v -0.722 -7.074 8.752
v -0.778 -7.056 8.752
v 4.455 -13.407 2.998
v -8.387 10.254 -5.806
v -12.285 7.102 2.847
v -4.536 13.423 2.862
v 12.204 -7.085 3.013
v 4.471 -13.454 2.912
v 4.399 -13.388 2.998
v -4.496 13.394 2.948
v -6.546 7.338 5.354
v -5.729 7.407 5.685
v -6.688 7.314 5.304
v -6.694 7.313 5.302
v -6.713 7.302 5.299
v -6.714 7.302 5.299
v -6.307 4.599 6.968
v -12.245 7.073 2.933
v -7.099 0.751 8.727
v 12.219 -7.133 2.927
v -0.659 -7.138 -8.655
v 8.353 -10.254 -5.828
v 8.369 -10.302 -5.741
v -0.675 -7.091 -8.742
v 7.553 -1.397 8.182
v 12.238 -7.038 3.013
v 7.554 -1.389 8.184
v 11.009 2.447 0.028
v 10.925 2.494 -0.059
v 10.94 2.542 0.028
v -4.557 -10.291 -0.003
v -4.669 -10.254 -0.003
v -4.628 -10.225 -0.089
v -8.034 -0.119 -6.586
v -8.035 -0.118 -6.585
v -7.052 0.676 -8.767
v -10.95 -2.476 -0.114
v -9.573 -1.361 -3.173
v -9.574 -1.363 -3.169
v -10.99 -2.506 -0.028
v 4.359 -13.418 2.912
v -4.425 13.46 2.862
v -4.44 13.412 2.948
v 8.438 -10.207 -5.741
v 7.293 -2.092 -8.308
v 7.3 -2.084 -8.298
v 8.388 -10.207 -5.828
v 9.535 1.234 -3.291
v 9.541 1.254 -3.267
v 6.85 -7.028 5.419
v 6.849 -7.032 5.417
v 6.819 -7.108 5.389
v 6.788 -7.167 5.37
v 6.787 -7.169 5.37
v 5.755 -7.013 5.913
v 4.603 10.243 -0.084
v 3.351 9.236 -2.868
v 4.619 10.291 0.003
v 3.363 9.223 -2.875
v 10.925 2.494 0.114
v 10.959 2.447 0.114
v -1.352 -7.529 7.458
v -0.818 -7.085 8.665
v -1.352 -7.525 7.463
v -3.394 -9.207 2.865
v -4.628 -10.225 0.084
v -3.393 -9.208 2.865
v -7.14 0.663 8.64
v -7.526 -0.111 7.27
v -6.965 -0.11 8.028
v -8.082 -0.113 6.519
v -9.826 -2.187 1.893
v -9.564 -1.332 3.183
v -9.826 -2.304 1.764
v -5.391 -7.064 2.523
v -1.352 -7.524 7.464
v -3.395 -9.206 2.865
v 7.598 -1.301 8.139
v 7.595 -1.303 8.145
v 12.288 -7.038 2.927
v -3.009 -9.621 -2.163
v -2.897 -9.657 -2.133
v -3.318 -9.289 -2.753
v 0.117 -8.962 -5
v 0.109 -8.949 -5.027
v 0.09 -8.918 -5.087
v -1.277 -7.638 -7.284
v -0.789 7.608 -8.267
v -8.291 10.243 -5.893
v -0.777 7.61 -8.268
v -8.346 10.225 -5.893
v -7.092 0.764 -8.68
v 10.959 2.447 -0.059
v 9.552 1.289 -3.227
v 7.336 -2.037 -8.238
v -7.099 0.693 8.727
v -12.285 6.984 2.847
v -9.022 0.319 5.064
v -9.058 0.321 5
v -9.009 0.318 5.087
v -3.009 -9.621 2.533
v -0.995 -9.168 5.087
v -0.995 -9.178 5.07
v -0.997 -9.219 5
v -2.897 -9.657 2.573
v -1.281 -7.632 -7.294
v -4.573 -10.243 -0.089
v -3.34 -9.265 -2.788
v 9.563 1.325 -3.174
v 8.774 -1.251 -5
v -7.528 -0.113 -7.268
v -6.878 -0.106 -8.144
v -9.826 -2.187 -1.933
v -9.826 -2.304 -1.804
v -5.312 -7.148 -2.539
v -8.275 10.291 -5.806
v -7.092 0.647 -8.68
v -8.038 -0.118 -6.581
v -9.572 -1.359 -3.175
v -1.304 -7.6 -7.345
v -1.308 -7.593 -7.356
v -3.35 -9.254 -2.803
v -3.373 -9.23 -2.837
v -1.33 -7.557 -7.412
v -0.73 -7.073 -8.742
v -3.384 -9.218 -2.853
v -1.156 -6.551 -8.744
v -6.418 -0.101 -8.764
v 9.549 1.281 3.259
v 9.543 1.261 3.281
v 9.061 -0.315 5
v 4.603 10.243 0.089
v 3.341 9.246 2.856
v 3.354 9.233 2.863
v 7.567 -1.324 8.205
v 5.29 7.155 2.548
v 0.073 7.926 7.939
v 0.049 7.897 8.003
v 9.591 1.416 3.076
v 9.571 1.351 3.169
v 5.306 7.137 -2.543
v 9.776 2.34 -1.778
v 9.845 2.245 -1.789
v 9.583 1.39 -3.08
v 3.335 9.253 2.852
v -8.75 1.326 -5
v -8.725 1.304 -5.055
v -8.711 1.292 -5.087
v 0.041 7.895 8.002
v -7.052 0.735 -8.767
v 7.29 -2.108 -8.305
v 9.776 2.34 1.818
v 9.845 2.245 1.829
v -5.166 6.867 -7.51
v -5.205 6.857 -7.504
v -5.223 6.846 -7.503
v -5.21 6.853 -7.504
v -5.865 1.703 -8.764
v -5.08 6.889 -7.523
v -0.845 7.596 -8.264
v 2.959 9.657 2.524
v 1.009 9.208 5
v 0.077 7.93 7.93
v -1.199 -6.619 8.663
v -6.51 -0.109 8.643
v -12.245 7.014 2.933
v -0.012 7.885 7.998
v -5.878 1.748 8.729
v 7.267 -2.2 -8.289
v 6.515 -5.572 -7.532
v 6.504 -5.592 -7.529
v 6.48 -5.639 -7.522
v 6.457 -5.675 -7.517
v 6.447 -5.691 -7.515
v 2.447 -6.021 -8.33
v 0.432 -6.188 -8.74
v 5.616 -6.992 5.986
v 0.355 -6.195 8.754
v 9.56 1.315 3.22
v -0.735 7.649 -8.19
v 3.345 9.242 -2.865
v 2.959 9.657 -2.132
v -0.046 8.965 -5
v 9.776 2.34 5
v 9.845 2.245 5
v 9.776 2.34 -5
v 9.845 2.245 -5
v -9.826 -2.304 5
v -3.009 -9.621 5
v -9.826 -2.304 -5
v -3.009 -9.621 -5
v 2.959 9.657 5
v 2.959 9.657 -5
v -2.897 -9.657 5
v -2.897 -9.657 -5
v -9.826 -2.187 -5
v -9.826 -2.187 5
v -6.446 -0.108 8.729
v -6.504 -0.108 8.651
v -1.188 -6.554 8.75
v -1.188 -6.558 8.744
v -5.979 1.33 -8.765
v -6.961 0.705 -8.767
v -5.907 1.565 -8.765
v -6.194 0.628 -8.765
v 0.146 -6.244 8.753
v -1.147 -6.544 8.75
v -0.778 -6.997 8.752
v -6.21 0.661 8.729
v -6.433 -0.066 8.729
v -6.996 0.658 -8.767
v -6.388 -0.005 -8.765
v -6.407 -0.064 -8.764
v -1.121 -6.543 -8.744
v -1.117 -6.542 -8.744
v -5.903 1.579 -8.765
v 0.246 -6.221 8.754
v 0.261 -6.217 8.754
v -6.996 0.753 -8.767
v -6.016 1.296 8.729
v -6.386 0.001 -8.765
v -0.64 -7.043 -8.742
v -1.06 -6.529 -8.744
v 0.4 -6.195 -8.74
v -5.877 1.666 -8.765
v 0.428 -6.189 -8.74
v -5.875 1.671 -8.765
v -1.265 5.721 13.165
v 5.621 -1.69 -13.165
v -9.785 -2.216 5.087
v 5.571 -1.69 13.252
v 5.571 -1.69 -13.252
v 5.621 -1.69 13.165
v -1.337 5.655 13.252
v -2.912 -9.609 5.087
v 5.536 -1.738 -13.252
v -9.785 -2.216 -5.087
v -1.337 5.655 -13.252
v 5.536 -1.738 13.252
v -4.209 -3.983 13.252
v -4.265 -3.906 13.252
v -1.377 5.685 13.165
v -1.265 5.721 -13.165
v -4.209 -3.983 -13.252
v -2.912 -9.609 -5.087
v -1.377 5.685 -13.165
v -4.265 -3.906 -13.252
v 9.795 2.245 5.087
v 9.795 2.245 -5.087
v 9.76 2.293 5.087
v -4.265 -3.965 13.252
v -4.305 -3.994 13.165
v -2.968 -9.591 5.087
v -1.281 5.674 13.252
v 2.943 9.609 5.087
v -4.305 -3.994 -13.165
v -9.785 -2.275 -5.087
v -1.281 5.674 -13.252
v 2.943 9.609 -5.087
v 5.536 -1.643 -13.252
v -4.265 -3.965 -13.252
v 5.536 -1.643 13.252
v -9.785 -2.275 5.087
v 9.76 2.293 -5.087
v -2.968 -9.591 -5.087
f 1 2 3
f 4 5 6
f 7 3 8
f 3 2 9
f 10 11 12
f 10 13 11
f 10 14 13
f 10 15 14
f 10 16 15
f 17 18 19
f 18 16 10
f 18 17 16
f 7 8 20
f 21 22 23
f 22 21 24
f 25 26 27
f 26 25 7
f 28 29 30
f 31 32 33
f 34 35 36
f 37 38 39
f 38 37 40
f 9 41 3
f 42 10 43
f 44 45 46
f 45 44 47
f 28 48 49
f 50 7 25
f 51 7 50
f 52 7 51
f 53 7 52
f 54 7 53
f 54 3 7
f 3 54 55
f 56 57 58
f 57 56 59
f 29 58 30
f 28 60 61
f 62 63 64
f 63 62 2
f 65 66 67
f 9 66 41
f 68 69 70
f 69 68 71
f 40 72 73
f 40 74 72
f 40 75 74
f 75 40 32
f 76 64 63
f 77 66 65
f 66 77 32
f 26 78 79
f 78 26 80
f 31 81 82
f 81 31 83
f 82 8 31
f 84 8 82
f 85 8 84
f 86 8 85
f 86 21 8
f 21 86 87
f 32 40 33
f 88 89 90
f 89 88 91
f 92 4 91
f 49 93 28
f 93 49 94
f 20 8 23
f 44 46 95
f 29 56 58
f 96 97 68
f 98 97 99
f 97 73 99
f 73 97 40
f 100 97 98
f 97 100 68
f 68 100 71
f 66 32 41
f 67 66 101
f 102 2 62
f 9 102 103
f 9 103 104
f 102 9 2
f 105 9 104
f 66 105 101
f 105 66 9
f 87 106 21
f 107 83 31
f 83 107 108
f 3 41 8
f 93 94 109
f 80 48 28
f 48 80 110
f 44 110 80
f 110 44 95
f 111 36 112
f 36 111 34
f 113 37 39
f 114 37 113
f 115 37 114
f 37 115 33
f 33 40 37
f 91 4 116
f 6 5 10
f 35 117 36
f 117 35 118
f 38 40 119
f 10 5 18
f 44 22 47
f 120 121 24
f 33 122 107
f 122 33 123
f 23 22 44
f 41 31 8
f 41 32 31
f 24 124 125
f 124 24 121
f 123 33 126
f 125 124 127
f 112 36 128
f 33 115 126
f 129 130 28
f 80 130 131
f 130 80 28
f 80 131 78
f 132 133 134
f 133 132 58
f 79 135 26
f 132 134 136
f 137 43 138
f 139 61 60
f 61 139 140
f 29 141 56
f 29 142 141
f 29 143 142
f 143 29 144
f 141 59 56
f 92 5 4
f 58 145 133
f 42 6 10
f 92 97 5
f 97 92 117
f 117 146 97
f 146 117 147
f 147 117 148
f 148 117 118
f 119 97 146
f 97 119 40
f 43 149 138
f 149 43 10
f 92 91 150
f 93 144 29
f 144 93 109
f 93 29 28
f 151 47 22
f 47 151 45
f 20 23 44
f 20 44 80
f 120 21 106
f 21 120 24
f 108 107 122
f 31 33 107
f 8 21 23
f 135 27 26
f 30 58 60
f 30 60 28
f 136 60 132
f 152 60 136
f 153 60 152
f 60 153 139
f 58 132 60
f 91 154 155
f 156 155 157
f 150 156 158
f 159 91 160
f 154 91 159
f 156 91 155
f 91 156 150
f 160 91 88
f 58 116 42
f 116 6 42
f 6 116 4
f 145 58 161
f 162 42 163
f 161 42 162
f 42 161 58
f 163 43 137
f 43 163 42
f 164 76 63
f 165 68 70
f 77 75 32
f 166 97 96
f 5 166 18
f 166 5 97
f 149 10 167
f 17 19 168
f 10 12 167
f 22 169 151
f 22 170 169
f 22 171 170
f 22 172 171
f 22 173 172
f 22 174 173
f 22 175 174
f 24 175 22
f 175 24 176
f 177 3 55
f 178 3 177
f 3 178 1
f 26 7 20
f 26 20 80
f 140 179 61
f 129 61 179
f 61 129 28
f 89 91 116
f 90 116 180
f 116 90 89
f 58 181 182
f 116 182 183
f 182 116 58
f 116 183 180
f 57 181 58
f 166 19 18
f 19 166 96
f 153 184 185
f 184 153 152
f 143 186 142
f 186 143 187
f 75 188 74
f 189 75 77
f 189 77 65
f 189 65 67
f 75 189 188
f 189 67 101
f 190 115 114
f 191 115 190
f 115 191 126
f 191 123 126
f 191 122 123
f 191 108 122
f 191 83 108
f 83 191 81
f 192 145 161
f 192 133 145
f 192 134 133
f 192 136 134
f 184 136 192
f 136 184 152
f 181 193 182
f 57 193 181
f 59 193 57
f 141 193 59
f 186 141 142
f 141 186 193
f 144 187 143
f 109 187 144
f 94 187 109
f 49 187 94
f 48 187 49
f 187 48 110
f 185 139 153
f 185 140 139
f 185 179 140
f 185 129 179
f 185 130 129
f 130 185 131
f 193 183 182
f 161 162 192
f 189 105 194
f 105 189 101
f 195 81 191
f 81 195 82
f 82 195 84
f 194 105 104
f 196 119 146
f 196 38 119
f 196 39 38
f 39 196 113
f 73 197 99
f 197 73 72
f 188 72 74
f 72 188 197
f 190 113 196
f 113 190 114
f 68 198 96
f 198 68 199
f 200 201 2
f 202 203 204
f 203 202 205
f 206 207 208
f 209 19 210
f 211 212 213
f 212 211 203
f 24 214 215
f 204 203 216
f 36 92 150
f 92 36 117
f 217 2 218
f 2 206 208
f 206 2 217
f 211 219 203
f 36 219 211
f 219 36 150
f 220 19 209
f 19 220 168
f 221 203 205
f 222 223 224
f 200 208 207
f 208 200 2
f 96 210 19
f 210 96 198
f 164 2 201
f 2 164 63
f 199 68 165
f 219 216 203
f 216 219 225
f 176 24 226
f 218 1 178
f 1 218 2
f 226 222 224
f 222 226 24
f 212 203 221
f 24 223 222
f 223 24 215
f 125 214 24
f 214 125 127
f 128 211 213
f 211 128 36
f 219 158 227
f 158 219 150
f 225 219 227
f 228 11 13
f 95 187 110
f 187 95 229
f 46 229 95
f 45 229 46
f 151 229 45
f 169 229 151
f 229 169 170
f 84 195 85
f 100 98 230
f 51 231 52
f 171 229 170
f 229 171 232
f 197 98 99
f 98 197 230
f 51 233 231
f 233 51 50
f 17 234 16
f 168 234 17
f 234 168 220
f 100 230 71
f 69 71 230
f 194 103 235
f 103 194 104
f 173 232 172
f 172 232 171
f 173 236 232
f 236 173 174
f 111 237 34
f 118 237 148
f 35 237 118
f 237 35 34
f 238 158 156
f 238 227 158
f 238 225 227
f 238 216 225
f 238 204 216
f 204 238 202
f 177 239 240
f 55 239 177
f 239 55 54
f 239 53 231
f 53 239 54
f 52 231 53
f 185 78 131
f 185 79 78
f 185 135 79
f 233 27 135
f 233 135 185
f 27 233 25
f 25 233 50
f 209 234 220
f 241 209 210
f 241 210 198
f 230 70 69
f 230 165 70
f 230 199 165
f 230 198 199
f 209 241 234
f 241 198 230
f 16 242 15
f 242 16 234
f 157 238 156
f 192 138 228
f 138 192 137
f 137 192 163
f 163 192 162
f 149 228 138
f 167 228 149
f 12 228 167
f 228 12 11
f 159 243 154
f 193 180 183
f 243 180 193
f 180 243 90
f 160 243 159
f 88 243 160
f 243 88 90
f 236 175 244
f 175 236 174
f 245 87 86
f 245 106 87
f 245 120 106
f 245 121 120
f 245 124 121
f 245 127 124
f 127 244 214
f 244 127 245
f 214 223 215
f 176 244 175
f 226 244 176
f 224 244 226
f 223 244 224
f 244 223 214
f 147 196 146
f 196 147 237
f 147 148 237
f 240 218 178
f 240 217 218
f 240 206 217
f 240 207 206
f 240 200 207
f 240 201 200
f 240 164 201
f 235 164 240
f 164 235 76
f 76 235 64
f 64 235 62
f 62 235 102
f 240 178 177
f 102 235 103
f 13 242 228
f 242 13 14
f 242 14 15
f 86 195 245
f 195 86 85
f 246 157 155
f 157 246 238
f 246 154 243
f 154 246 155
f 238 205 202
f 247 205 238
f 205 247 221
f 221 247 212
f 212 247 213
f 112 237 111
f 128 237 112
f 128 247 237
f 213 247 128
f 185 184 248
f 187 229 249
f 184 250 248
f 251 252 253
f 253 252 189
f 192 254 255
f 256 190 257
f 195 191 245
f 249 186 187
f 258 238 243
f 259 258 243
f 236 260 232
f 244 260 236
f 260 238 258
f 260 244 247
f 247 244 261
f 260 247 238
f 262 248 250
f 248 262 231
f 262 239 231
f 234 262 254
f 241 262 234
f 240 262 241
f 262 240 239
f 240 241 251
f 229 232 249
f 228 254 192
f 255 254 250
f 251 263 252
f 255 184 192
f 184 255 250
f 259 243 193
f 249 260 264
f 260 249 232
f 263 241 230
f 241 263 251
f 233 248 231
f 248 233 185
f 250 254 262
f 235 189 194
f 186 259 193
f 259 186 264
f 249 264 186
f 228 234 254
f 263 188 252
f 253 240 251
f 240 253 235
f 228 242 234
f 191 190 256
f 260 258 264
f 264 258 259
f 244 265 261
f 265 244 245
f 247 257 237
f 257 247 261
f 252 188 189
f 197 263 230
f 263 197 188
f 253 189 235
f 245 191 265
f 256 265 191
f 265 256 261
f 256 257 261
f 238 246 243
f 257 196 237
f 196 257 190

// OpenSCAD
// Auto-generated OpenSCAD file

    inner_points = 10*[[0.6816849469680293, -0.7316458385567781, -0.49999999999974415], [-0.6816849469680293, 0.7316458385567781, 0.49999999999974415], [0.9744663562470987, 0.22453356217329945, 0.5000000000002717], [-0.9744663562470987, -0.22453356217329945, -0.5000000000002717], [0.29278140927951324, 0.9561794007299667, -0.49999999999998396], [-0.29278140927951324, -0.9561794007299667, 0.49999999999998396], [0.29278140927921736, 0.9561794007300406, 0.5000000000000159], [-0.29278140927921736, -0.9561794007300406, -0.5000000000000159], [-0.6816849469677333, 0.7316458385567042, -0.5000000000002558], [0.6816849469677333, -0.7316458385567042, 0.5000000000002558], [0.9744663562473946, 0.2245335621732255, -0.4999999999997282], [-0.9744663562473946, -0.2245335621732255, 0.4999999999997282], [-0.12963451256244907, 0.5626084130954843, -1.316496580927806], [0.5520504344054322, -0.1690374254612569, -1.31649658092755], [-0.42241592184181437, -0.39357098763451936, -1.3164965809278217], [-0.12963451256322828, 0.5626084130956789, 1.316496580927646], [0.5520504344046528, -0.1690374254610622, 1.316496580927902], [-0.4224159218425935, -0.39357098763432463, 1.3164965809276301]];

    outer_points = 10*[[-0.7011219638770654, 0.0705453444014307, -0.8680157522490306], [0.7011219638770654, -0.0705453444014307, 0.8680157522490306], [0.7058639190712959, -0.07219505369662516, -0.8640277784741948], [-0.7058639190712959, 0.07219505369662516, 0.8640277784741948], [0.458804168329848, 1.0195580679347902, 0.00028501269092109927], [-0.458804168329848, -1.0195580679347902, -0.00028501269092109927], [1.0909253114088568, 0.2446924239128929, 0.0027536534135308988], [-1.0909253114088568, -0.2446924239128929, -0.0027536534135308988], [0.06900082079805647, 0.7043202996204667, 0.8655471115264208], [-0.06900082079805647, -0.7043202996204667, -0.8655471115264208], [0.07374277599228718, 0.7026705903252722, -0.8664964191968046], [-0.07374277599228718, -0.7026705903252722, 0.8664964191968046], [-0.4455432795266699, 1.3364455455443083, 0.28618363124246243], [-0.8306046718642308, 1.0195580679347902, -0.5805978006452633], [-1.2204080193960225, 0.7043202996204667, 0.28466429819023636], [1.2188273676646122, -0.7037703965220686, 0.2926835453841721], [0.8337659753270512, -1.0206578741315866, -0.5740978865035536], [0.44396262779525975, -1.33589564244591, 0.29116421233194606]];

    // Convex hull for inner set (I)
    module inner_hull() {
        hull() {
            for (p = inner_points) {
                translate(p) sphere(r=0.1);
            }
        }
    }

    // Convex hull for outer set (O) minus inner hull (O \ I)
    module outer_minus_inner() {
        difference() {
            hull() {
                for (p = outer_points) {
                    translate(p) sphere(r=0.1);
                }
            }
            inner_hull(); // Subtract inner hull
        }
    }

    // Convex hull for outer set (O) minus all translated inner hulls
    module outer_minus_AllTranslationInner() {
        difference() {
            hull() {
                for (p = outer_points) {
                    translate(p) sphere(r=0.1);
                }
            }
            hull() {
                translate([0,0,50]) inner_hull();
                translate([0,0,-50]) inner_hull();
            }; // Subtract translated inner hulls
        }
    }

    // Difference between outer_minus_inner and outer_minus_AllTranslationInner
    module outer_minus_inner_diff() {
        difference() {
            // Outer minus inner
            difference() {
                hull() {
                    for (p = outer_points) {
                        translate(p) sphere(r=0.1);
                    }
                }
                inner_hull();
            }

            // Subtract Outer minus AllTranslationInner
            difference() {
                hull() {
                    for (p = outer_points) {
                        translate(p) sphere(r=0.1);
                    }
                }
                hull() {
                    translate([0,0,50]) inner_hull();
                    translate([0,0,-50]) inner_hull();
                };
            }
        }
    }

    // Rendering all with colors applied
    color([1, 0, 0, 0.5]) inner_hull(); // Transparent red
    color([0, 1, 0, 1]) outer_minus_AllTranslationInner(); // Opaque green
    color([1, 1, 0, 1]) outer_minus_inner_diff(); // Opaque yellow
    
